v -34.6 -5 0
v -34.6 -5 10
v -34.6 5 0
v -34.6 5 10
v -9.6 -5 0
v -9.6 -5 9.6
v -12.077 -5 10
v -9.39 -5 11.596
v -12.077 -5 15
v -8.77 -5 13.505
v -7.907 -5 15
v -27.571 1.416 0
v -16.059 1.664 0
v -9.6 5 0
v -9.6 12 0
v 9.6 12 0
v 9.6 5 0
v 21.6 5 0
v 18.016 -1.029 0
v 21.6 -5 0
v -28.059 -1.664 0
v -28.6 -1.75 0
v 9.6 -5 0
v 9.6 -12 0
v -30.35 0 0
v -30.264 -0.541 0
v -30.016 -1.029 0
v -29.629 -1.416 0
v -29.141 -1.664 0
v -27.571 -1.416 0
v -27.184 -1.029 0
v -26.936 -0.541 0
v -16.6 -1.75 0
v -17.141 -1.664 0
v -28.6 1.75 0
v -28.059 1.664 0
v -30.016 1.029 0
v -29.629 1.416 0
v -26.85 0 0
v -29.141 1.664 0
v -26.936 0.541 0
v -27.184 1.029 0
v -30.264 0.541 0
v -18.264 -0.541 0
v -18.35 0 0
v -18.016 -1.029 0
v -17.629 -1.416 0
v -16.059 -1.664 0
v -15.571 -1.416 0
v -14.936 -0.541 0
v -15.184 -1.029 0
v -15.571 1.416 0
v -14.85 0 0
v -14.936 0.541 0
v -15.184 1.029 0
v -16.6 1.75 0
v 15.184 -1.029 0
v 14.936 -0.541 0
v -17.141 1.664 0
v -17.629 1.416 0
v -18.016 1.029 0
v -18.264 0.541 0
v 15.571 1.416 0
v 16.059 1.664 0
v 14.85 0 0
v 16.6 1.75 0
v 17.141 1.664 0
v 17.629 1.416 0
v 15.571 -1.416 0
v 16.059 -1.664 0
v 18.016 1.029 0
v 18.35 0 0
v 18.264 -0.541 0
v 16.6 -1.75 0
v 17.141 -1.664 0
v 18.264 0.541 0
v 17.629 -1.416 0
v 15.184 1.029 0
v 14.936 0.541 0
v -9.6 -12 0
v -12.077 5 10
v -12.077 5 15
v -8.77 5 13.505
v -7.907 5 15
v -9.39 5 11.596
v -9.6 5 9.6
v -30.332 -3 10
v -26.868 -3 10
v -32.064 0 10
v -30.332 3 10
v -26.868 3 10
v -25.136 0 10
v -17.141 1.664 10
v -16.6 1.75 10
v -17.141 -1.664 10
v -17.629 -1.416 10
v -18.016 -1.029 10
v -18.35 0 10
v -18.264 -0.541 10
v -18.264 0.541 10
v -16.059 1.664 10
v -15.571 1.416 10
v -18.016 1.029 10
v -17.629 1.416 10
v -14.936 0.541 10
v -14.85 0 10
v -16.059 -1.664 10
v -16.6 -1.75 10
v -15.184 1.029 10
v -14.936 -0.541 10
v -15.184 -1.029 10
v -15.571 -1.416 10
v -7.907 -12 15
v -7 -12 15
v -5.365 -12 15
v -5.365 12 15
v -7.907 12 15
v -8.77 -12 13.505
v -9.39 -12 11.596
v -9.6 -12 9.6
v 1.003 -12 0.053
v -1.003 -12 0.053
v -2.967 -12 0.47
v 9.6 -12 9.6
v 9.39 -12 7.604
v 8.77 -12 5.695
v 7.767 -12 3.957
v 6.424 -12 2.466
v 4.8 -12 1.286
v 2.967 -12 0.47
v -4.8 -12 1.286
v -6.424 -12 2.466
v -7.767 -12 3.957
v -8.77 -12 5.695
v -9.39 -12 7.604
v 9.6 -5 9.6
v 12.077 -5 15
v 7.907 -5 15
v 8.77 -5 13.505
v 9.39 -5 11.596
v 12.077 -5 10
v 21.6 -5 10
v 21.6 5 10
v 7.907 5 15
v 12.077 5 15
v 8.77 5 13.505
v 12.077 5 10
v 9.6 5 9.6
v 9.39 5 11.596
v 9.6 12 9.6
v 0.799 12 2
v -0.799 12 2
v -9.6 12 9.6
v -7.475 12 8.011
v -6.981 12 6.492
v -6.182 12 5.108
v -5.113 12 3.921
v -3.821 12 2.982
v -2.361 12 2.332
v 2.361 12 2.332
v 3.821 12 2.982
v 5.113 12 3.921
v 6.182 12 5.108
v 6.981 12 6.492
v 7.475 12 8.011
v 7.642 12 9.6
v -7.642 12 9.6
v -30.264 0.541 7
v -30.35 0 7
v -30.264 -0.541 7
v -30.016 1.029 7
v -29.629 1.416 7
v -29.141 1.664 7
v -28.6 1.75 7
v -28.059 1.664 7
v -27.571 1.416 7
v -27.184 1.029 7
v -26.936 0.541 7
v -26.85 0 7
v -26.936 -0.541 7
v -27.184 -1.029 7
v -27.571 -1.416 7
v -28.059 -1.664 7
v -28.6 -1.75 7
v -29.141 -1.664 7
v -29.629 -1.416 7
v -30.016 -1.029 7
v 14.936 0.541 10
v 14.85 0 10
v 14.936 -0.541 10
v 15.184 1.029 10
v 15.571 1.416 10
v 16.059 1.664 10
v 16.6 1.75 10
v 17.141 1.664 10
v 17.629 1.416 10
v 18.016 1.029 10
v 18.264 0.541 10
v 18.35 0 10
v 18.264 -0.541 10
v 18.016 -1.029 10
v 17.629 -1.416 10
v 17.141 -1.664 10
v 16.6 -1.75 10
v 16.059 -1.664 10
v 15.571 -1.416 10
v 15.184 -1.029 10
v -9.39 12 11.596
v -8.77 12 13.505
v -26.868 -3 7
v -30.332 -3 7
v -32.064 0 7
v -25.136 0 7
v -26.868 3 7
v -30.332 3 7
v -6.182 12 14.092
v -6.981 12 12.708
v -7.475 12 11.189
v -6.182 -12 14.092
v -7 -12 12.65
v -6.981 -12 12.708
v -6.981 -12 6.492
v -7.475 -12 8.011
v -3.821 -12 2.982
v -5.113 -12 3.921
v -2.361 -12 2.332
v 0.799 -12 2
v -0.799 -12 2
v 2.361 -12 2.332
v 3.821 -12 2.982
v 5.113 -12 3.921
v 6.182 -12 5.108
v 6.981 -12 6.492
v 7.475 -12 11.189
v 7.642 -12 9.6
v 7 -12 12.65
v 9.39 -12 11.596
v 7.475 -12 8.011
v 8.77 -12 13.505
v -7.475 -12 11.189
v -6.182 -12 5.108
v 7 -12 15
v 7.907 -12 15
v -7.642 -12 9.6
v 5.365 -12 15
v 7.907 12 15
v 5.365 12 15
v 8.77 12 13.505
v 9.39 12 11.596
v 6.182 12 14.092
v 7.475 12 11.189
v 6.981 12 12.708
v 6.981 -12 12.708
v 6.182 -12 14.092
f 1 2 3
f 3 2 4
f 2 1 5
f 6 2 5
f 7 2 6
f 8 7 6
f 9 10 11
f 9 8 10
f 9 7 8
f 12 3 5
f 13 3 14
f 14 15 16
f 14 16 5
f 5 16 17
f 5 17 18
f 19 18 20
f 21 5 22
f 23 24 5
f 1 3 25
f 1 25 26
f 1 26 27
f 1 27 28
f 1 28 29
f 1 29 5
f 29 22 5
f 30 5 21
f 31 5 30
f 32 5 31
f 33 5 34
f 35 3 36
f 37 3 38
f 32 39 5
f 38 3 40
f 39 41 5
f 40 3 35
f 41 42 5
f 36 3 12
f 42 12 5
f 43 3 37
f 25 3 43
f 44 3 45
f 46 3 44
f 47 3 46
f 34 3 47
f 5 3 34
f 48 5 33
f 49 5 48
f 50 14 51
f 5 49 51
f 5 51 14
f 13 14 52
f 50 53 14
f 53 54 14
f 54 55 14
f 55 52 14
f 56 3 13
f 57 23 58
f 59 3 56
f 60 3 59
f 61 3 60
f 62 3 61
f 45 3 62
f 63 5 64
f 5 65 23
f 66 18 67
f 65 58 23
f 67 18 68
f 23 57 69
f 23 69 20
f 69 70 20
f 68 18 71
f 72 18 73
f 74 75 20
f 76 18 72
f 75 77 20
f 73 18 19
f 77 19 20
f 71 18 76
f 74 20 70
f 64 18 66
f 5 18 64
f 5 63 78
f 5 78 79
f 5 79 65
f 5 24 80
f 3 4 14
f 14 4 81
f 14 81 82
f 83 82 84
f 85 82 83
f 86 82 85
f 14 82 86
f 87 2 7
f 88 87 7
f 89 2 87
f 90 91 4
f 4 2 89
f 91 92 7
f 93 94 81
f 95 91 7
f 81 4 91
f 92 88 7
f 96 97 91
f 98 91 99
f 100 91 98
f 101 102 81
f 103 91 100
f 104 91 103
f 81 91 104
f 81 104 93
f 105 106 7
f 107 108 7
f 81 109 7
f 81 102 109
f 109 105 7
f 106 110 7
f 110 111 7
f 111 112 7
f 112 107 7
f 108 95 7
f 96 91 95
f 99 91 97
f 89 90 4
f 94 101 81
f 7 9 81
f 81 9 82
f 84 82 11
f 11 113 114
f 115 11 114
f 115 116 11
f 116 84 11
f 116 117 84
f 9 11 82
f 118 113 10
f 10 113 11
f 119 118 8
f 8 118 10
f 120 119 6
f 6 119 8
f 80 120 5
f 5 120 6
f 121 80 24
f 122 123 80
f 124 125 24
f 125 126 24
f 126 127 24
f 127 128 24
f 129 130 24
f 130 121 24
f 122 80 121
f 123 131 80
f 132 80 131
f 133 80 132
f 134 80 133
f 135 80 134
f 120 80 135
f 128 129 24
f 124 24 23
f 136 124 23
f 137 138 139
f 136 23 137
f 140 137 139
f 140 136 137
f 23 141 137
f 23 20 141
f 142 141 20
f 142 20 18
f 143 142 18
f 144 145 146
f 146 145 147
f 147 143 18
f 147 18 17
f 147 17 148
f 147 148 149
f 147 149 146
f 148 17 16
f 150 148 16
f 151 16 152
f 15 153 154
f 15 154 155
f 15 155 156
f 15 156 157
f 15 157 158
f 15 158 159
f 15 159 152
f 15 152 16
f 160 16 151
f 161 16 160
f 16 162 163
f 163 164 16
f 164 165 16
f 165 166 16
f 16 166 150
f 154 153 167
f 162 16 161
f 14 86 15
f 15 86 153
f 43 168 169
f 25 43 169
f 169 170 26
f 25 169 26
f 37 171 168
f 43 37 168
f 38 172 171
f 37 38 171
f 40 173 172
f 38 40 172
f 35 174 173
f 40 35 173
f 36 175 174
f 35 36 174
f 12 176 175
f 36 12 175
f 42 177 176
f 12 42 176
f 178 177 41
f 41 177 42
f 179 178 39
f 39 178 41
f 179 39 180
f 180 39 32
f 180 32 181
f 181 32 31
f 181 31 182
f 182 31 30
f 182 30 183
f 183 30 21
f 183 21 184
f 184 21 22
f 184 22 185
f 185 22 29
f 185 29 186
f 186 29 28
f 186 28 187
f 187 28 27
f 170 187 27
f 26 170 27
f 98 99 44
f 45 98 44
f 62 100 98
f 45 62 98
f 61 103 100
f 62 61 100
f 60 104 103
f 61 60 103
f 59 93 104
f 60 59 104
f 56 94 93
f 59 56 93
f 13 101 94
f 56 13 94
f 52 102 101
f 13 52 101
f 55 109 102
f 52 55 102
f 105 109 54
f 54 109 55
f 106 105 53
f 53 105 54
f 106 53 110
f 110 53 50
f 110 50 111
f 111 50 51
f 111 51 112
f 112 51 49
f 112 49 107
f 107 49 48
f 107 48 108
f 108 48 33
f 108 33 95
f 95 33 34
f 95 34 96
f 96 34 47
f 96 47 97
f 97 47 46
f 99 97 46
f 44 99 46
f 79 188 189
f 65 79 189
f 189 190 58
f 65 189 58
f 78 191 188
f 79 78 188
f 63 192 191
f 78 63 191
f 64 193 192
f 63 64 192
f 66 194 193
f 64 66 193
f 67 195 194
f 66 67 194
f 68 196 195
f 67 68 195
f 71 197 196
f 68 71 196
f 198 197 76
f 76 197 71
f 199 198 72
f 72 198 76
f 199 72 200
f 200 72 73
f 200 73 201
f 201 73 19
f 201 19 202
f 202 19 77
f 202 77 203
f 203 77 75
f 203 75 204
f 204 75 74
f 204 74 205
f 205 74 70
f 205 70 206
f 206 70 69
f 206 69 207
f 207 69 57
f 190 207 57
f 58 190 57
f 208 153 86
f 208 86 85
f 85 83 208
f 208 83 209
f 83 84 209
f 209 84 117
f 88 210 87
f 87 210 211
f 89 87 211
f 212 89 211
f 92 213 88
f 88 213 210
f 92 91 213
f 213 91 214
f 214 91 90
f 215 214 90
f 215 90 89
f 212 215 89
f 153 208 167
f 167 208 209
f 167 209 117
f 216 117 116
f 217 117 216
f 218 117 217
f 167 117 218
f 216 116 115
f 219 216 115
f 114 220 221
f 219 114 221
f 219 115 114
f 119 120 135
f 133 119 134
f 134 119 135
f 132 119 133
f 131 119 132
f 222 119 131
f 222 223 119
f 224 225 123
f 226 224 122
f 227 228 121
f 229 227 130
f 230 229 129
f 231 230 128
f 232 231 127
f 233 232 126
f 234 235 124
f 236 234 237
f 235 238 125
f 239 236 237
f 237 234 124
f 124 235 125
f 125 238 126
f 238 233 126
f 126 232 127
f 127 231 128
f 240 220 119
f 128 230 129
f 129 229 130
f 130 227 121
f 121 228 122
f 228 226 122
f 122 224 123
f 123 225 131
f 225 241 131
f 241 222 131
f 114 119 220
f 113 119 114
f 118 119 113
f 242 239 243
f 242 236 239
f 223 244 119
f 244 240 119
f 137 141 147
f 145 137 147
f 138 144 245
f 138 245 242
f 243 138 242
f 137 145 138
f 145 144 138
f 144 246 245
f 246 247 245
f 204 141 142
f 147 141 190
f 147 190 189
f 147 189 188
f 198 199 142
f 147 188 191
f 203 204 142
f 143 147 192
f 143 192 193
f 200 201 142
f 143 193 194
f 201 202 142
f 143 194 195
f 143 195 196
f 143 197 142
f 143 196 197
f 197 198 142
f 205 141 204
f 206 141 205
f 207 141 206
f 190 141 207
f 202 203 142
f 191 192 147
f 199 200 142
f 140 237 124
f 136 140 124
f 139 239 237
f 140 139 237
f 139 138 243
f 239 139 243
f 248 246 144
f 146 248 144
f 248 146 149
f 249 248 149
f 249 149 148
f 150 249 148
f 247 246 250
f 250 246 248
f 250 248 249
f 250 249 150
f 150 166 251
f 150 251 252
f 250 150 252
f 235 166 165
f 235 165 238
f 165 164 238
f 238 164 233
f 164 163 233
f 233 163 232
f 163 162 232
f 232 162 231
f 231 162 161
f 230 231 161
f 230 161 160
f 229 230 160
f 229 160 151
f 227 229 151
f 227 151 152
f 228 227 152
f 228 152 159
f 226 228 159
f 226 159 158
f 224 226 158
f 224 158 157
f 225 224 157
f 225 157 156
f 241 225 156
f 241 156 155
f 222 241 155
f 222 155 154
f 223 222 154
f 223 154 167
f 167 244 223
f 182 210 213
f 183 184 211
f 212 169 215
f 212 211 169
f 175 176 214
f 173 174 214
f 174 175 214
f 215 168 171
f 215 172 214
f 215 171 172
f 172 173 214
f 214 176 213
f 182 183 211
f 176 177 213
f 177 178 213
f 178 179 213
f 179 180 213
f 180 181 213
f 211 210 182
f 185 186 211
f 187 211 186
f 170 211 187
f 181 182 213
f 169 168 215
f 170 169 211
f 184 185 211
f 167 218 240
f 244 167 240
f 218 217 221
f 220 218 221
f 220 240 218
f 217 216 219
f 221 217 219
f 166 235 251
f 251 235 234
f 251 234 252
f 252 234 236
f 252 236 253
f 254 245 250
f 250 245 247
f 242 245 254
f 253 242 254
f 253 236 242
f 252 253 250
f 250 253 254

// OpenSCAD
// Print three of these.

include <bearing-mount-include.scad>

bearing_holder(clamp=false,with_mountplate=true, vertical=false, slope=false, igus=false);
